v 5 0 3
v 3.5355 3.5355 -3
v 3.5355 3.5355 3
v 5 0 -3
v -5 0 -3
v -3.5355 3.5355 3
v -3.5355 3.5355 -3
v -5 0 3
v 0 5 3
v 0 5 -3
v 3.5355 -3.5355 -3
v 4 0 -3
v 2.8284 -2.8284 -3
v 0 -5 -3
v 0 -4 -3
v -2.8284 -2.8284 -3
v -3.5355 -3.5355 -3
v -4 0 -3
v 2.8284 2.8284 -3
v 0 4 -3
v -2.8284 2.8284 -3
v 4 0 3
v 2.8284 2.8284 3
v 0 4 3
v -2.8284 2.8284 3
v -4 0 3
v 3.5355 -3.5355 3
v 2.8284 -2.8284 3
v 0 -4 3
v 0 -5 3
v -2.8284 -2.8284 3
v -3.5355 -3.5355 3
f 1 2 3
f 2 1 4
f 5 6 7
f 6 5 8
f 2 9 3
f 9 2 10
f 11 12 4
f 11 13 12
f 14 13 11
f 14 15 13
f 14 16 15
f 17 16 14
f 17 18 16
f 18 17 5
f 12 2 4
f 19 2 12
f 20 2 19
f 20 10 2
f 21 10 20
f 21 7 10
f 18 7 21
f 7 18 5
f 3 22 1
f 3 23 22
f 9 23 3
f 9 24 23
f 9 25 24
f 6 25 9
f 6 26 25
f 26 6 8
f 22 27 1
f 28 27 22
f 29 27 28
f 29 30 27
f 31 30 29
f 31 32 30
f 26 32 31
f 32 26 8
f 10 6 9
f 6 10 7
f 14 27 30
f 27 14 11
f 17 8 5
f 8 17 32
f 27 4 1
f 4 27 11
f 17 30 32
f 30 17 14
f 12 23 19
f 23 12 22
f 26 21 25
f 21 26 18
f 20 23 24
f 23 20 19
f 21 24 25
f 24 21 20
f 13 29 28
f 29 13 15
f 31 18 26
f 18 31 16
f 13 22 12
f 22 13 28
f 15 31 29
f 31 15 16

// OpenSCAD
// Pipes

difference(){
	cylinder(6, 5, 5, $fn=8, center=true);
	cylinder(6, 4, 4, $fn=8, center=true);
}
